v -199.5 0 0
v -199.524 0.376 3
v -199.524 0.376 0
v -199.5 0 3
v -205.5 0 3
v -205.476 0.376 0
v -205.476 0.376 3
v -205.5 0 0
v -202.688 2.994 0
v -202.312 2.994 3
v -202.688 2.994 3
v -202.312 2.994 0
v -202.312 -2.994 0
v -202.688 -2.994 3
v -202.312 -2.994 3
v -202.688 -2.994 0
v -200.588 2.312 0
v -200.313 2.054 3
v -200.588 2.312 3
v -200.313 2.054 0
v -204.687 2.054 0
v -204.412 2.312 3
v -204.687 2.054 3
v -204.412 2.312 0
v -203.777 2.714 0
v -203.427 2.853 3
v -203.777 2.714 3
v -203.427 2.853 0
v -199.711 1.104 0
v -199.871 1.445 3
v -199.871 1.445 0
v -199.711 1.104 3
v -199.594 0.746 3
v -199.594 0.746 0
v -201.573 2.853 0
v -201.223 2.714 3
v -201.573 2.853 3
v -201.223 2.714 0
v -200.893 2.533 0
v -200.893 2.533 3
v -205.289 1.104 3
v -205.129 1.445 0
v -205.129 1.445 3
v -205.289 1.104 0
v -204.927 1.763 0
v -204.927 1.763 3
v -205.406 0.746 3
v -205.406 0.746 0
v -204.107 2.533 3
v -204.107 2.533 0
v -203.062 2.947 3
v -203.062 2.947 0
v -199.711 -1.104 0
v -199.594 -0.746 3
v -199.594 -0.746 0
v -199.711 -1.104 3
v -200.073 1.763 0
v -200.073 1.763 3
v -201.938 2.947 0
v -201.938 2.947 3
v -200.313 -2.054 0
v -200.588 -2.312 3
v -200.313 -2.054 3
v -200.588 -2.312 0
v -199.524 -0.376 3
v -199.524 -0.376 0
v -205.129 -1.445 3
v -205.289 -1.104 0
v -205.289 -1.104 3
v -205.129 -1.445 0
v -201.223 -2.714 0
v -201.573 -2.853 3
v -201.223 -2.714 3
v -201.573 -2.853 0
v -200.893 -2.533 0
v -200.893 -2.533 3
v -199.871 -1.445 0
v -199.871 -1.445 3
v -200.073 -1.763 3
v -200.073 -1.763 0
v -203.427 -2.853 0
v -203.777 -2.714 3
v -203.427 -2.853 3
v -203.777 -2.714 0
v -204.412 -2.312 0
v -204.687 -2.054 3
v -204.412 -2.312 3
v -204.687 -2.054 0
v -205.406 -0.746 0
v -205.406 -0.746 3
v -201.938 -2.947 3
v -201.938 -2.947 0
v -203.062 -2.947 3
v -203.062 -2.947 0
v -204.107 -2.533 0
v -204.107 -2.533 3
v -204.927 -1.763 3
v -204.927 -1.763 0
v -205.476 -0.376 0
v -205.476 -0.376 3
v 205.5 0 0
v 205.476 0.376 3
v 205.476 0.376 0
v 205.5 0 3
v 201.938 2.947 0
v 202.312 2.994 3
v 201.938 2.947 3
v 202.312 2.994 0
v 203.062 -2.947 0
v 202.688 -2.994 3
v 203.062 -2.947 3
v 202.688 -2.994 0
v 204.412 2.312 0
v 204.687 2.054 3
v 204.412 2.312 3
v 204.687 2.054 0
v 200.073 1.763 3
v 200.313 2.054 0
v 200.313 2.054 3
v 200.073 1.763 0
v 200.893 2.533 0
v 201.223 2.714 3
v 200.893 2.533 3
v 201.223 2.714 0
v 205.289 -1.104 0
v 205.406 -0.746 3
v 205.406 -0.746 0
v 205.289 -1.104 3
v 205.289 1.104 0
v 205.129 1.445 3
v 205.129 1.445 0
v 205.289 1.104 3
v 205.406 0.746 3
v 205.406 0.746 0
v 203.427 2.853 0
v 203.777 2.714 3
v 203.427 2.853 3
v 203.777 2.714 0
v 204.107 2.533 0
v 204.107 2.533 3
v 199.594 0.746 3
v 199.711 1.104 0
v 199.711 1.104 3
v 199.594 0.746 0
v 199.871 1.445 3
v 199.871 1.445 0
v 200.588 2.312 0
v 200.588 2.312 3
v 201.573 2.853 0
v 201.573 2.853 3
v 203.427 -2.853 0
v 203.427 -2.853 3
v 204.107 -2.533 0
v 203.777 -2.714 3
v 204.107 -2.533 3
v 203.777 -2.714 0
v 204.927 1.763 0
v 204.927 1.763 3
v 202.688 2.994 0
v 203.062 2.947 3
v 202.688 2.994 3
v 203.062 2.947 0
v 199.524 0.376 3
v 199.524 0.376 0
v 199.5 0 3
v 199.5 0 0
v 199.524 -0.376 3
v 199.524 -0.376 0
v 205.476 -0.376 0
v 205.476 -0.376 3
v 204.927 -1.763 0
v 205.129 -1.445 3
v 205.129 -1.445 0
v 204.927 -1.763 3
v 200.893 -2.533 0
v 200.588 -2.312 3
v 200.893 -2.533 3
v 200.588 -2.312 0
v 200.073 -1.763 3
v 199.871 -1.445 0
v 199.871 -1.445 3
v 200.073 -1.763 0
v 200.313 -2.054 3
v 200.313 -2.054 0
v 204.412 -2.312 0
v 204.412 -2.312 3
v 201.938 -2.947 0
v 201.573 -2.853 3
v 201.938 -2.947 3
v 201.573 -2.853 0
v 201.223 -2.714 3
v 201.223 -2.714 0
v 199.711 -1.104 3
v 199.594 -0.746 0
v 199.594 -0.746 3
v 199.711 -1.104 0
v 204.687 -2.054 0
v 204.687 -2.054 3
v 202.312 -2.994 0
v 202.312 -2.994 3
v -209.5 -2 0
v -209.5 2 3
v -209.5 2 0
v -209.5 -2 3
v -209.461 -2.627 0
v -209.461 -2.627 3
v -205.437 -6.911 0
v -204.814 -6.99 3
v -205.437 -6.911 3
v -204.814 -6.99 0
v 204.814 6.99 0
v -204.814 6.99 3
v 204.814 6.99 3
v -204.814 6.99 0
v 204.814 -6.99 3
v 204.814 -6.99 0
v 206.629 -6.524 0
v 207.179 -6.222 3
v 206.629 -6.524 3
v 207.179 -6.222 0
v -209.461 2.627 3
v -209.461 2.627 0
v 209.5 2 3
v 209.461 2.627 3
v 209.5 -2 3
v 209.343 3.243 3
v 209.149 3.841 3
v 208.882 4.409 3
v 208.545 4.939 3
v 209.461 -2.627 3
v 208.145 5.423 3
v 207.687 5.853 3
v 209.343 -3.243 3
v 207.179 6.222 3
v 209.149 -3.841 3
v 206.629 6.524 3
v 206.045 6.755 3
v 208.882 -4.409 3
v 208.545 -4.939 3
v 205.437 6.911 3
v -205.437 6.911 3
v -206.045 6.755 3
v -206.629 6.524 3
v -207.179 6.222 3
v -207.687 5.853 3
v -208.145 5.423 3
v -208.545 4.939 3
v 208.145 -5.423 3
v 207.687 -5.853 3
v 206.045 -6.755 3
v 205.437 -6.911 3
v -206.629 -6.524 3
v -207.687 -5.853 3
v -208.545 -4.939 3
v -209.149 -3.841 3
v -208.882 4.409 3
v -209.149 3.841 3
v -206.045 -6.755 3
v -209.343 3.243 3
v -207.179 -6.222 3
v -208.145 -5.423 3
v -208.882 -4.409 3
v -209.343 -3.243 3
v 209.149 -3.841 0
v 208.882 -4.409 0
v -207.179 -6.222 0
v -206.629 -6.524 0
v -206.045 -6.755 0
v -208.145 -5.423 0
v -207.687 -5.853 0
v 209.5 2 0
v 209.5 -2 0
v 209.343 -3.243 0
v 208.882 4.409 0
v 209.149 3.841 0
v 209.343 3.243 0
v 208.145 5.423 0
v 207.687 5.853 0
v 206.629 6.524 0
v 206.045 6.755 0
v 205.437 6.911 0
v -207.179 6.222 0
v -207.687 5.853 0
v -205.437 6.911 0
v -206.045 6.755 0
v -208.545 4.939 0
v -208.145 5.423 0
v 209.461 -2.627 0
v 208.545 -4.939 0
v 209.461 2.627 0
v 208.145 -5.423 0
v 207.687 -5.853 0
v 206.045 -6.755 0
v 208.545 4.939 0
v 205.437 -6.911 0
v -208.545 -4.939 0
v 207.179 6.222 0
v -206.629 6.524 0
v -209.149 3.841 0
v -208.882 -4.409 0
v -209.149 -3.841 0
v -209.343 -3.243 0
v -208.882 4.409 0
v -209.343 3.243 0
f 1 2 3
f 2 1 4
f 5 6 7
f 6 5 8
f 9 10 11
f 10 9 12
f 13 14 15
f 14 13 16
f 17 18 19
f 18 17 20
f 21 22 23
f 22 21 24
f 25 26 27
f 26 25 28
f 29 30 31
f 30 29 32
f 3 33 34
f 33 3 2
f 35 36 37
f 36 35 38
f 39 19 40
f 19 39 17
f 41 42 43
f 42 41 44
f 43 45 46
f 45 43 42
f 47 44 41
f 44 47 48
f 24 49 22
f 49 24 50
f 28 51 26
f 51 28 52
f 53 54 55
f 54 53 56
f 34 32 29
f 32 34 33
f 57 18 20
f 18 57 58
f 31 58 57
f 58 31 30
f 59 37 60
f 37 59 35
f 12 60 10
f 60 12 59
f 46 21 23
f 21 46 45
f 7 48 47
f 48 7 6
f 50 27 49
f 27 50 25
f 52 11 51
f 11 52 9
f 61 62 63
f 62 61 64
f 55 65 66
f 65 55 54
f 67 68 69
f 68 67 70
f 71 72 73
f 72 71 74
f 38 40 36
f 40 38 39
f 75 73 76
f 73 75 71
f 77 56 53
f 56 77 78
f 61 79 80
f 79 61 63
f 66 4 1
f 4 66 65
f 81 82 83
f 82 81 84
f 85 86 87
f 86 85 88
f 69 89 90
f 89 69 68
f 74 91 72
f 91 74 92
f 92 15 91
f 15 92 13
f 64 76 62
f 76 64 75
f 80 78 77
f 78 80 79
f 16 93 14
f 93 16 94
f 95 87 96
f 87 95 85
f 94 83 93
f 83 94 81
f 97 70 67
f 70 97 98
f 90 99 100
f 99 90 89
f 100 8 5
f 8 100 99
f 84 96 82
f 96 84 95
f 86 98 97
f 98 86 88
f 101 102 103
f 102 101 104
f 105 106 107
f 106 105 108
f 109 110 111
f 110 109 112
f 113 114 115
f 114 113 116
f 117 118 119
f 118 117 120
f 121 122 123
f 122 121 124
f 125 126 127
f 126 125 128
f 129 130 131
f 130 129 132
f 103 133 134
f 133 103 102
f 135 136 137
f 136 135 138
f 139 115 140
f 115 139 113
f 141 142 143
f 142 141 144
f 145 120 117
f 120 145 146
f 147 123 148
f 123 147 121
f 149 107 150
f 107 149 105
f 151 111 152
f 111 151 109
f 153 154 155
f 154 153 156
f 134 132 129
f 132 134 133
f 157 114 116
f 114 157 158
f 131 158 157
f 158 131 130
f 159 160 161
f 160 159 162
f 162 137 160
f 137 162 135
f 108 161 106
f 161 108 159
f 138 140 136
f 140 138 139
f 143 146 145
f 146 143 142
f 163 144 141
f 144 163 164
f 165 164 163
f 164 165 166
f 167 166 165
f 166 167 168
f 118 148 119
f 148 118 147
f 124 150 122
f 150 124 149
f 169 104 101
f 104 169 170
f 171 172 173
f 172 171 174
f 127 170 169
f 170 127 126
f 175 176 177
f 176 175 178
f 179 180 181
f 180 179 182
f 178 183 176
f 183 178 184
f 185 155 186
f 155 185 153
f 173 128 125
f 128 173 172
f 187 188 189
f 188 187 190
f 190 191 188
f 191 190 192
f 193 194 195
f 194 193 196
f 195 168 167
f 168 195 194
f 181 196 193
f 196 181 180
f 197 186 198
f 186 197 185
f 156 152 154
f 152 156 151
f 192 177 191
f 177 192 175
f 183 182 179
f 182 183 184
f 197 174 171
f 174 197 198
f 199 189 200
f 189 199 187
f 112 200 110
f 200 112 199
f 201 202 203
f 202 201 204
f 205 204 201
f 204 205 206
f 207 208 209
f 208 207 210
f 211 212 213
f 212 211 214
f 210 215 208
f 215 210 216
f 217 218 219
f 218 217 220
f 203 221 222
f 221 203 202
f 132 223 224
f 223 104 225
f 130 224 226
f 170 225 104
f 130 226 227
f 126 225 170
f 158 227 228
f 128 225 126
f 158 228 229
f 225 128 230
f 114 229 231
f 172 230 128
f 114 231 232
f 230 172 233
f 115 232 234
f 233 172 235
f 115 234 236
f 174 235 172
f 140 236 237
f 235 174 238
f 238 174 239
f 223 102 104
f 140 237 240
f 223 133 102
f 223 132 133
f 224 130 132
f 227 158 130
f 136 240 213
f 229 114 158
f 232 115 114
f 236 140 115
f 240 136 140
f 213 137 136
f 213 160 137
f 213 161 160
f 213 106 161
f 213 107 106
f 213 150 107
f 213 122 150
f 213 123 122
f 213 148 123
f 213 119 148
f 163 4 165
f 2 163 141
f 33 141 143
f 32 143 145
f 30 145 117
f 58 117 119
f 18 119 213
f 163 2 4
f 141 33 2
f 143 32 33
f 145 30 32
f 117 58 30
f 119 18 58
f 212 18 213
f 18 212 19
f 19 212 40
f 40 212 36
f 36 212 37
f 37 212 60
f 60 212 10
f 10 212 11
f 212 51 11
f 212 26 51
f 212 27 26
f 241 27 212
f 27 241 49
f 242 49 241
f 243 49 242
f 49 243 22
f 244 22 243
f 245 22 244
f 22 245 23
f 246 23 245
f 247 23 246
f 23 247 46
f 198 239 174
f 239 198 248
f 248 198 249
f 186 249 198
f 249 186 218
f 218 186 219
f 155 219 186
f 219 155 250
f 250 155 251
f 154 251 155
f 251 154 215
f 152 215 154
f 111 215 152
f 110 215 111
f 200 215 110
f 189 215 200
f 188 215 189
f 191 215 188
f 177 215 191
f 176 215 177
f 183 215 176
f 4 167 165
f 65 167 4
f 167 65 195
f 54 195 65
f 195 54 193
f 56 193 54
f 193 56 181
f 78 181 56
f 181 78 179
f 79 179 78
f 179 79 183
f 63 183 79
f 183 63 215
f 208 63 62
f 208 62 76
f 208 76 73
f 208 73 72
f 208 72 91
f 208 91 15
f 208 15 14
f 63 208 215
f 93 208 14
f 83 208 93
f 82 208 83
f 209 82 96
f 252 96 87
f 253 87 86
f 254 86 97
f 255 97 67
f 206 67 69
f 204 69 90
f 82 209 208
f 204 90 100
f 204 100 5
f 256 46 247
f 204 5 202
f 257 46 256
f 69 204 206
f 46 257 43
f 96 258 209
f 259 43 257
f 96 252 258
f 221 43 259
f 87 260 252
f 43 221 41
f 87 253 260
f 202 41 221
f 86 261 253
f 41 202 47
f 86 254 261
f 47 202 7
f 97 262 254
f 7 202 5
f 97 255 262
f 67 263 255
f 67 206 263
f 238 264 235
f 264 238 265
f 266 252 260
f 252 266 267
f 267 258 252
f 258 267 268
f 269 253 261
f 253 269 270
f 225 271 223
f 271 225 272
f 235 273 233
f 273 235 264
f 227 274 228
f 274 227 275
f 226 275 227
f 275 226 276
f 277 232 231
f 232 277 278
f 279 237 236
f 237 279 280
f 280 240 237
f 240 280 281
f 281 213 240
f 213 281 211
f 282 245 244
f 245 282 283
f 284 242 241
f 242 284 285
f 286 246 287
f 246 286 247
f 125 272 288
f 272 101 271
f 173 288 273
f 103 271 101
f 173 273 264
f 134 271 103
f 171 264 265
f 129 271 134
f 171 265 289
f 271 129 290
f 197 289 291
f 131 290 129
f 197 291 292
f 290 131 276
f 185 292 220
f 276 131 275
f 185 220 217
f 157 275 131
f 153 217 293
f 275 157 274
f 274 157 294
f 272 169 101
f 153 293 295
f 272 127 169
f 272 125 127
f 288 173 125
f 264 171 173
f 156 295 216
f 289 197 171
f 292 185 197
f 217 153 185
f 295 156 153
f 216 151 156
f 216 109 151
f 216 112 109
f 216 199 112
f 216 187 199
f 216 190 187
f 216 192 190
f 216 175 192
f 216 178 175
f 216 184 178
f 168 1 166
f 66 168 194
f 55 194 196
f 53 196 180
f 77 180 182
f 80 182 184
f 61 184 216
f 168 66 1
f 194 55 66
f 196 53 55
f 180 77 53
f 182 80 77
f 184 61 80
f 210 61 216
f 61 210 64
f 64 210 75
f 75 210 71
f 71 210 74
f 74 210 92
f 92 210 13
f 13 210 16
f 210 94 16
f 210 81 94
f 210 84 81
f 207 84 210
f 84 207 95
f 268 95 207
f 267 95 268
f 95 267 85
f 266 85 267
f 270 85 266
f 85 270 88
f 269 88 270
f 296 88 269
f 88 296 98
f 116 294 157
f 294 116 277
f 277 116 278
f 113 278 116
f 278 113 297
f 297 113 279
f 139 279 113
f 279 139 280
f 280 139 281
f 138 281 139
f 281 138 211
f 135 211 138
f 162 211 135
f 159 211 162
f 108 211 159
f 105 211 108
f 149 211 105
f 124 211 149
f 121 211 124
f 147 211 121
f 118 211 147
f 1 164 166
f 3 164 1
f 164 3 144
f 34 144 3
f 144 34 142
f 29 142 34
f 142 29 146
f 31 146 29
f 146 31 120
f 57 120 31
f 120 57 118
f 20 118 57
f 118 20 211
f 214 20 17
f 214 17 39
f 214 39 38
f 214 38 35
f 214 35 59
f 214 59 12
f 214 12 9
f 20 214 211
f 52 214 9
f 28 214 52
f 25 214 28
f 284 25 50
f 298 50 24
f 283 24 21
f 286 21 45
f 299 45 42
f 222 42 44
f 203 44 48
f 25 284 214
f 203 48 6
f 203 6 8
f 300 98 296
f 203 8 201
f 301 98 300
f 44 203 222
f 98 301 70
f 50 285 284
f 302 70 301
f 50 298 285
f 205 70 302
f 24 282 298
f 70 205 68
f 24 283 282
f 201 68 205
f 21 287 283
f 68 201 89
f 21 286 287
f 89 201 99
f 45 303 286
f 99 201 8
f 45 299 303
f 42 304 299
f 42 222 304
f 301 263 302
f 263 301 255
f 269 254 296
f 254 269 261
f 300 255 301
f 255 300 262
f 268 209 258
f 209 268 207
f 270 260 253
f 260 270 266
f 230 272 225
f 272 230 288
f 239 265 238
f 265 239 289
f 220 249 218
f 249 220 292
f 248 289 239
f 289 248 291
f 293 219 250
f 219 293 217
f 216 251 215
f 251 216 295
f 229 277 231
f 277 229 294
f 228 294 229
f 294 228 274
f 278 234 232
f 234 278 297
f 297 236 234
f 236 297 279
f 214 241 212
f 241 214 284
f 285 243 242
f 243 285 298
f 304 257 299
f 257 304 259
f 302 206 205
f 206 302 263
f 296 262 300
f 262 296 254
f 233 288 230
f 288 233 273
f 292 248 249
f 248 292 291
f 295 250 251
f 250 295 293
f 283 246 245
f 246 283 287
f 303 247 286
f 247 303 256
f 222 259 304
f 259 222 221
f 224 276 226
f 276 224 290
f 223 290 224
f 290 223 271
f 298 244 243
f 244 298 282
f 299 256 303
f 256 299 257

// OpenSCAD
$fn = 50;


difference() {
	union() {
		hull() {
			translate(v = [-204.5000000000, 2.0000000000, 0]) {
				cylinder(h = 3, r = 5);
			}
			translate(v = [204.5000000000, 2.0000000000, 0]) {
				cylinder(h = 3, r = 5);
			}
			translate(v = [-204.5000000000, -2.0000000000, 0]) {
				cylinder(h = 3, r = 5);
			}
			translate(v = [204.5000000000, -2.0000000000, 0]) {
				cylinder(h = 3, r = 5);
			}
		}
	}
	union() {
		translate(v = [-202.5000000000, 0.0000000000, -100.0000000000]) {
			cylinder(h = 200, r = 3.0000000000);
		}
		translate(v = [-202.5000000000, 0.0000000000, -100.0000000000]) {
			cylinder(h = 200, r = 3.0000000000);
		}
		translate(v = [202.5000000000, 0.0000000000, -100.0000000000]) {
			cylinder(h = 200, r = 3.0000000000);
		}
		translate(v = [202.5000000000, 0.0000000000, -100.0000000000]) {
			cylinder(h = 200, r = 3.0000000000);
		}
	}
}
